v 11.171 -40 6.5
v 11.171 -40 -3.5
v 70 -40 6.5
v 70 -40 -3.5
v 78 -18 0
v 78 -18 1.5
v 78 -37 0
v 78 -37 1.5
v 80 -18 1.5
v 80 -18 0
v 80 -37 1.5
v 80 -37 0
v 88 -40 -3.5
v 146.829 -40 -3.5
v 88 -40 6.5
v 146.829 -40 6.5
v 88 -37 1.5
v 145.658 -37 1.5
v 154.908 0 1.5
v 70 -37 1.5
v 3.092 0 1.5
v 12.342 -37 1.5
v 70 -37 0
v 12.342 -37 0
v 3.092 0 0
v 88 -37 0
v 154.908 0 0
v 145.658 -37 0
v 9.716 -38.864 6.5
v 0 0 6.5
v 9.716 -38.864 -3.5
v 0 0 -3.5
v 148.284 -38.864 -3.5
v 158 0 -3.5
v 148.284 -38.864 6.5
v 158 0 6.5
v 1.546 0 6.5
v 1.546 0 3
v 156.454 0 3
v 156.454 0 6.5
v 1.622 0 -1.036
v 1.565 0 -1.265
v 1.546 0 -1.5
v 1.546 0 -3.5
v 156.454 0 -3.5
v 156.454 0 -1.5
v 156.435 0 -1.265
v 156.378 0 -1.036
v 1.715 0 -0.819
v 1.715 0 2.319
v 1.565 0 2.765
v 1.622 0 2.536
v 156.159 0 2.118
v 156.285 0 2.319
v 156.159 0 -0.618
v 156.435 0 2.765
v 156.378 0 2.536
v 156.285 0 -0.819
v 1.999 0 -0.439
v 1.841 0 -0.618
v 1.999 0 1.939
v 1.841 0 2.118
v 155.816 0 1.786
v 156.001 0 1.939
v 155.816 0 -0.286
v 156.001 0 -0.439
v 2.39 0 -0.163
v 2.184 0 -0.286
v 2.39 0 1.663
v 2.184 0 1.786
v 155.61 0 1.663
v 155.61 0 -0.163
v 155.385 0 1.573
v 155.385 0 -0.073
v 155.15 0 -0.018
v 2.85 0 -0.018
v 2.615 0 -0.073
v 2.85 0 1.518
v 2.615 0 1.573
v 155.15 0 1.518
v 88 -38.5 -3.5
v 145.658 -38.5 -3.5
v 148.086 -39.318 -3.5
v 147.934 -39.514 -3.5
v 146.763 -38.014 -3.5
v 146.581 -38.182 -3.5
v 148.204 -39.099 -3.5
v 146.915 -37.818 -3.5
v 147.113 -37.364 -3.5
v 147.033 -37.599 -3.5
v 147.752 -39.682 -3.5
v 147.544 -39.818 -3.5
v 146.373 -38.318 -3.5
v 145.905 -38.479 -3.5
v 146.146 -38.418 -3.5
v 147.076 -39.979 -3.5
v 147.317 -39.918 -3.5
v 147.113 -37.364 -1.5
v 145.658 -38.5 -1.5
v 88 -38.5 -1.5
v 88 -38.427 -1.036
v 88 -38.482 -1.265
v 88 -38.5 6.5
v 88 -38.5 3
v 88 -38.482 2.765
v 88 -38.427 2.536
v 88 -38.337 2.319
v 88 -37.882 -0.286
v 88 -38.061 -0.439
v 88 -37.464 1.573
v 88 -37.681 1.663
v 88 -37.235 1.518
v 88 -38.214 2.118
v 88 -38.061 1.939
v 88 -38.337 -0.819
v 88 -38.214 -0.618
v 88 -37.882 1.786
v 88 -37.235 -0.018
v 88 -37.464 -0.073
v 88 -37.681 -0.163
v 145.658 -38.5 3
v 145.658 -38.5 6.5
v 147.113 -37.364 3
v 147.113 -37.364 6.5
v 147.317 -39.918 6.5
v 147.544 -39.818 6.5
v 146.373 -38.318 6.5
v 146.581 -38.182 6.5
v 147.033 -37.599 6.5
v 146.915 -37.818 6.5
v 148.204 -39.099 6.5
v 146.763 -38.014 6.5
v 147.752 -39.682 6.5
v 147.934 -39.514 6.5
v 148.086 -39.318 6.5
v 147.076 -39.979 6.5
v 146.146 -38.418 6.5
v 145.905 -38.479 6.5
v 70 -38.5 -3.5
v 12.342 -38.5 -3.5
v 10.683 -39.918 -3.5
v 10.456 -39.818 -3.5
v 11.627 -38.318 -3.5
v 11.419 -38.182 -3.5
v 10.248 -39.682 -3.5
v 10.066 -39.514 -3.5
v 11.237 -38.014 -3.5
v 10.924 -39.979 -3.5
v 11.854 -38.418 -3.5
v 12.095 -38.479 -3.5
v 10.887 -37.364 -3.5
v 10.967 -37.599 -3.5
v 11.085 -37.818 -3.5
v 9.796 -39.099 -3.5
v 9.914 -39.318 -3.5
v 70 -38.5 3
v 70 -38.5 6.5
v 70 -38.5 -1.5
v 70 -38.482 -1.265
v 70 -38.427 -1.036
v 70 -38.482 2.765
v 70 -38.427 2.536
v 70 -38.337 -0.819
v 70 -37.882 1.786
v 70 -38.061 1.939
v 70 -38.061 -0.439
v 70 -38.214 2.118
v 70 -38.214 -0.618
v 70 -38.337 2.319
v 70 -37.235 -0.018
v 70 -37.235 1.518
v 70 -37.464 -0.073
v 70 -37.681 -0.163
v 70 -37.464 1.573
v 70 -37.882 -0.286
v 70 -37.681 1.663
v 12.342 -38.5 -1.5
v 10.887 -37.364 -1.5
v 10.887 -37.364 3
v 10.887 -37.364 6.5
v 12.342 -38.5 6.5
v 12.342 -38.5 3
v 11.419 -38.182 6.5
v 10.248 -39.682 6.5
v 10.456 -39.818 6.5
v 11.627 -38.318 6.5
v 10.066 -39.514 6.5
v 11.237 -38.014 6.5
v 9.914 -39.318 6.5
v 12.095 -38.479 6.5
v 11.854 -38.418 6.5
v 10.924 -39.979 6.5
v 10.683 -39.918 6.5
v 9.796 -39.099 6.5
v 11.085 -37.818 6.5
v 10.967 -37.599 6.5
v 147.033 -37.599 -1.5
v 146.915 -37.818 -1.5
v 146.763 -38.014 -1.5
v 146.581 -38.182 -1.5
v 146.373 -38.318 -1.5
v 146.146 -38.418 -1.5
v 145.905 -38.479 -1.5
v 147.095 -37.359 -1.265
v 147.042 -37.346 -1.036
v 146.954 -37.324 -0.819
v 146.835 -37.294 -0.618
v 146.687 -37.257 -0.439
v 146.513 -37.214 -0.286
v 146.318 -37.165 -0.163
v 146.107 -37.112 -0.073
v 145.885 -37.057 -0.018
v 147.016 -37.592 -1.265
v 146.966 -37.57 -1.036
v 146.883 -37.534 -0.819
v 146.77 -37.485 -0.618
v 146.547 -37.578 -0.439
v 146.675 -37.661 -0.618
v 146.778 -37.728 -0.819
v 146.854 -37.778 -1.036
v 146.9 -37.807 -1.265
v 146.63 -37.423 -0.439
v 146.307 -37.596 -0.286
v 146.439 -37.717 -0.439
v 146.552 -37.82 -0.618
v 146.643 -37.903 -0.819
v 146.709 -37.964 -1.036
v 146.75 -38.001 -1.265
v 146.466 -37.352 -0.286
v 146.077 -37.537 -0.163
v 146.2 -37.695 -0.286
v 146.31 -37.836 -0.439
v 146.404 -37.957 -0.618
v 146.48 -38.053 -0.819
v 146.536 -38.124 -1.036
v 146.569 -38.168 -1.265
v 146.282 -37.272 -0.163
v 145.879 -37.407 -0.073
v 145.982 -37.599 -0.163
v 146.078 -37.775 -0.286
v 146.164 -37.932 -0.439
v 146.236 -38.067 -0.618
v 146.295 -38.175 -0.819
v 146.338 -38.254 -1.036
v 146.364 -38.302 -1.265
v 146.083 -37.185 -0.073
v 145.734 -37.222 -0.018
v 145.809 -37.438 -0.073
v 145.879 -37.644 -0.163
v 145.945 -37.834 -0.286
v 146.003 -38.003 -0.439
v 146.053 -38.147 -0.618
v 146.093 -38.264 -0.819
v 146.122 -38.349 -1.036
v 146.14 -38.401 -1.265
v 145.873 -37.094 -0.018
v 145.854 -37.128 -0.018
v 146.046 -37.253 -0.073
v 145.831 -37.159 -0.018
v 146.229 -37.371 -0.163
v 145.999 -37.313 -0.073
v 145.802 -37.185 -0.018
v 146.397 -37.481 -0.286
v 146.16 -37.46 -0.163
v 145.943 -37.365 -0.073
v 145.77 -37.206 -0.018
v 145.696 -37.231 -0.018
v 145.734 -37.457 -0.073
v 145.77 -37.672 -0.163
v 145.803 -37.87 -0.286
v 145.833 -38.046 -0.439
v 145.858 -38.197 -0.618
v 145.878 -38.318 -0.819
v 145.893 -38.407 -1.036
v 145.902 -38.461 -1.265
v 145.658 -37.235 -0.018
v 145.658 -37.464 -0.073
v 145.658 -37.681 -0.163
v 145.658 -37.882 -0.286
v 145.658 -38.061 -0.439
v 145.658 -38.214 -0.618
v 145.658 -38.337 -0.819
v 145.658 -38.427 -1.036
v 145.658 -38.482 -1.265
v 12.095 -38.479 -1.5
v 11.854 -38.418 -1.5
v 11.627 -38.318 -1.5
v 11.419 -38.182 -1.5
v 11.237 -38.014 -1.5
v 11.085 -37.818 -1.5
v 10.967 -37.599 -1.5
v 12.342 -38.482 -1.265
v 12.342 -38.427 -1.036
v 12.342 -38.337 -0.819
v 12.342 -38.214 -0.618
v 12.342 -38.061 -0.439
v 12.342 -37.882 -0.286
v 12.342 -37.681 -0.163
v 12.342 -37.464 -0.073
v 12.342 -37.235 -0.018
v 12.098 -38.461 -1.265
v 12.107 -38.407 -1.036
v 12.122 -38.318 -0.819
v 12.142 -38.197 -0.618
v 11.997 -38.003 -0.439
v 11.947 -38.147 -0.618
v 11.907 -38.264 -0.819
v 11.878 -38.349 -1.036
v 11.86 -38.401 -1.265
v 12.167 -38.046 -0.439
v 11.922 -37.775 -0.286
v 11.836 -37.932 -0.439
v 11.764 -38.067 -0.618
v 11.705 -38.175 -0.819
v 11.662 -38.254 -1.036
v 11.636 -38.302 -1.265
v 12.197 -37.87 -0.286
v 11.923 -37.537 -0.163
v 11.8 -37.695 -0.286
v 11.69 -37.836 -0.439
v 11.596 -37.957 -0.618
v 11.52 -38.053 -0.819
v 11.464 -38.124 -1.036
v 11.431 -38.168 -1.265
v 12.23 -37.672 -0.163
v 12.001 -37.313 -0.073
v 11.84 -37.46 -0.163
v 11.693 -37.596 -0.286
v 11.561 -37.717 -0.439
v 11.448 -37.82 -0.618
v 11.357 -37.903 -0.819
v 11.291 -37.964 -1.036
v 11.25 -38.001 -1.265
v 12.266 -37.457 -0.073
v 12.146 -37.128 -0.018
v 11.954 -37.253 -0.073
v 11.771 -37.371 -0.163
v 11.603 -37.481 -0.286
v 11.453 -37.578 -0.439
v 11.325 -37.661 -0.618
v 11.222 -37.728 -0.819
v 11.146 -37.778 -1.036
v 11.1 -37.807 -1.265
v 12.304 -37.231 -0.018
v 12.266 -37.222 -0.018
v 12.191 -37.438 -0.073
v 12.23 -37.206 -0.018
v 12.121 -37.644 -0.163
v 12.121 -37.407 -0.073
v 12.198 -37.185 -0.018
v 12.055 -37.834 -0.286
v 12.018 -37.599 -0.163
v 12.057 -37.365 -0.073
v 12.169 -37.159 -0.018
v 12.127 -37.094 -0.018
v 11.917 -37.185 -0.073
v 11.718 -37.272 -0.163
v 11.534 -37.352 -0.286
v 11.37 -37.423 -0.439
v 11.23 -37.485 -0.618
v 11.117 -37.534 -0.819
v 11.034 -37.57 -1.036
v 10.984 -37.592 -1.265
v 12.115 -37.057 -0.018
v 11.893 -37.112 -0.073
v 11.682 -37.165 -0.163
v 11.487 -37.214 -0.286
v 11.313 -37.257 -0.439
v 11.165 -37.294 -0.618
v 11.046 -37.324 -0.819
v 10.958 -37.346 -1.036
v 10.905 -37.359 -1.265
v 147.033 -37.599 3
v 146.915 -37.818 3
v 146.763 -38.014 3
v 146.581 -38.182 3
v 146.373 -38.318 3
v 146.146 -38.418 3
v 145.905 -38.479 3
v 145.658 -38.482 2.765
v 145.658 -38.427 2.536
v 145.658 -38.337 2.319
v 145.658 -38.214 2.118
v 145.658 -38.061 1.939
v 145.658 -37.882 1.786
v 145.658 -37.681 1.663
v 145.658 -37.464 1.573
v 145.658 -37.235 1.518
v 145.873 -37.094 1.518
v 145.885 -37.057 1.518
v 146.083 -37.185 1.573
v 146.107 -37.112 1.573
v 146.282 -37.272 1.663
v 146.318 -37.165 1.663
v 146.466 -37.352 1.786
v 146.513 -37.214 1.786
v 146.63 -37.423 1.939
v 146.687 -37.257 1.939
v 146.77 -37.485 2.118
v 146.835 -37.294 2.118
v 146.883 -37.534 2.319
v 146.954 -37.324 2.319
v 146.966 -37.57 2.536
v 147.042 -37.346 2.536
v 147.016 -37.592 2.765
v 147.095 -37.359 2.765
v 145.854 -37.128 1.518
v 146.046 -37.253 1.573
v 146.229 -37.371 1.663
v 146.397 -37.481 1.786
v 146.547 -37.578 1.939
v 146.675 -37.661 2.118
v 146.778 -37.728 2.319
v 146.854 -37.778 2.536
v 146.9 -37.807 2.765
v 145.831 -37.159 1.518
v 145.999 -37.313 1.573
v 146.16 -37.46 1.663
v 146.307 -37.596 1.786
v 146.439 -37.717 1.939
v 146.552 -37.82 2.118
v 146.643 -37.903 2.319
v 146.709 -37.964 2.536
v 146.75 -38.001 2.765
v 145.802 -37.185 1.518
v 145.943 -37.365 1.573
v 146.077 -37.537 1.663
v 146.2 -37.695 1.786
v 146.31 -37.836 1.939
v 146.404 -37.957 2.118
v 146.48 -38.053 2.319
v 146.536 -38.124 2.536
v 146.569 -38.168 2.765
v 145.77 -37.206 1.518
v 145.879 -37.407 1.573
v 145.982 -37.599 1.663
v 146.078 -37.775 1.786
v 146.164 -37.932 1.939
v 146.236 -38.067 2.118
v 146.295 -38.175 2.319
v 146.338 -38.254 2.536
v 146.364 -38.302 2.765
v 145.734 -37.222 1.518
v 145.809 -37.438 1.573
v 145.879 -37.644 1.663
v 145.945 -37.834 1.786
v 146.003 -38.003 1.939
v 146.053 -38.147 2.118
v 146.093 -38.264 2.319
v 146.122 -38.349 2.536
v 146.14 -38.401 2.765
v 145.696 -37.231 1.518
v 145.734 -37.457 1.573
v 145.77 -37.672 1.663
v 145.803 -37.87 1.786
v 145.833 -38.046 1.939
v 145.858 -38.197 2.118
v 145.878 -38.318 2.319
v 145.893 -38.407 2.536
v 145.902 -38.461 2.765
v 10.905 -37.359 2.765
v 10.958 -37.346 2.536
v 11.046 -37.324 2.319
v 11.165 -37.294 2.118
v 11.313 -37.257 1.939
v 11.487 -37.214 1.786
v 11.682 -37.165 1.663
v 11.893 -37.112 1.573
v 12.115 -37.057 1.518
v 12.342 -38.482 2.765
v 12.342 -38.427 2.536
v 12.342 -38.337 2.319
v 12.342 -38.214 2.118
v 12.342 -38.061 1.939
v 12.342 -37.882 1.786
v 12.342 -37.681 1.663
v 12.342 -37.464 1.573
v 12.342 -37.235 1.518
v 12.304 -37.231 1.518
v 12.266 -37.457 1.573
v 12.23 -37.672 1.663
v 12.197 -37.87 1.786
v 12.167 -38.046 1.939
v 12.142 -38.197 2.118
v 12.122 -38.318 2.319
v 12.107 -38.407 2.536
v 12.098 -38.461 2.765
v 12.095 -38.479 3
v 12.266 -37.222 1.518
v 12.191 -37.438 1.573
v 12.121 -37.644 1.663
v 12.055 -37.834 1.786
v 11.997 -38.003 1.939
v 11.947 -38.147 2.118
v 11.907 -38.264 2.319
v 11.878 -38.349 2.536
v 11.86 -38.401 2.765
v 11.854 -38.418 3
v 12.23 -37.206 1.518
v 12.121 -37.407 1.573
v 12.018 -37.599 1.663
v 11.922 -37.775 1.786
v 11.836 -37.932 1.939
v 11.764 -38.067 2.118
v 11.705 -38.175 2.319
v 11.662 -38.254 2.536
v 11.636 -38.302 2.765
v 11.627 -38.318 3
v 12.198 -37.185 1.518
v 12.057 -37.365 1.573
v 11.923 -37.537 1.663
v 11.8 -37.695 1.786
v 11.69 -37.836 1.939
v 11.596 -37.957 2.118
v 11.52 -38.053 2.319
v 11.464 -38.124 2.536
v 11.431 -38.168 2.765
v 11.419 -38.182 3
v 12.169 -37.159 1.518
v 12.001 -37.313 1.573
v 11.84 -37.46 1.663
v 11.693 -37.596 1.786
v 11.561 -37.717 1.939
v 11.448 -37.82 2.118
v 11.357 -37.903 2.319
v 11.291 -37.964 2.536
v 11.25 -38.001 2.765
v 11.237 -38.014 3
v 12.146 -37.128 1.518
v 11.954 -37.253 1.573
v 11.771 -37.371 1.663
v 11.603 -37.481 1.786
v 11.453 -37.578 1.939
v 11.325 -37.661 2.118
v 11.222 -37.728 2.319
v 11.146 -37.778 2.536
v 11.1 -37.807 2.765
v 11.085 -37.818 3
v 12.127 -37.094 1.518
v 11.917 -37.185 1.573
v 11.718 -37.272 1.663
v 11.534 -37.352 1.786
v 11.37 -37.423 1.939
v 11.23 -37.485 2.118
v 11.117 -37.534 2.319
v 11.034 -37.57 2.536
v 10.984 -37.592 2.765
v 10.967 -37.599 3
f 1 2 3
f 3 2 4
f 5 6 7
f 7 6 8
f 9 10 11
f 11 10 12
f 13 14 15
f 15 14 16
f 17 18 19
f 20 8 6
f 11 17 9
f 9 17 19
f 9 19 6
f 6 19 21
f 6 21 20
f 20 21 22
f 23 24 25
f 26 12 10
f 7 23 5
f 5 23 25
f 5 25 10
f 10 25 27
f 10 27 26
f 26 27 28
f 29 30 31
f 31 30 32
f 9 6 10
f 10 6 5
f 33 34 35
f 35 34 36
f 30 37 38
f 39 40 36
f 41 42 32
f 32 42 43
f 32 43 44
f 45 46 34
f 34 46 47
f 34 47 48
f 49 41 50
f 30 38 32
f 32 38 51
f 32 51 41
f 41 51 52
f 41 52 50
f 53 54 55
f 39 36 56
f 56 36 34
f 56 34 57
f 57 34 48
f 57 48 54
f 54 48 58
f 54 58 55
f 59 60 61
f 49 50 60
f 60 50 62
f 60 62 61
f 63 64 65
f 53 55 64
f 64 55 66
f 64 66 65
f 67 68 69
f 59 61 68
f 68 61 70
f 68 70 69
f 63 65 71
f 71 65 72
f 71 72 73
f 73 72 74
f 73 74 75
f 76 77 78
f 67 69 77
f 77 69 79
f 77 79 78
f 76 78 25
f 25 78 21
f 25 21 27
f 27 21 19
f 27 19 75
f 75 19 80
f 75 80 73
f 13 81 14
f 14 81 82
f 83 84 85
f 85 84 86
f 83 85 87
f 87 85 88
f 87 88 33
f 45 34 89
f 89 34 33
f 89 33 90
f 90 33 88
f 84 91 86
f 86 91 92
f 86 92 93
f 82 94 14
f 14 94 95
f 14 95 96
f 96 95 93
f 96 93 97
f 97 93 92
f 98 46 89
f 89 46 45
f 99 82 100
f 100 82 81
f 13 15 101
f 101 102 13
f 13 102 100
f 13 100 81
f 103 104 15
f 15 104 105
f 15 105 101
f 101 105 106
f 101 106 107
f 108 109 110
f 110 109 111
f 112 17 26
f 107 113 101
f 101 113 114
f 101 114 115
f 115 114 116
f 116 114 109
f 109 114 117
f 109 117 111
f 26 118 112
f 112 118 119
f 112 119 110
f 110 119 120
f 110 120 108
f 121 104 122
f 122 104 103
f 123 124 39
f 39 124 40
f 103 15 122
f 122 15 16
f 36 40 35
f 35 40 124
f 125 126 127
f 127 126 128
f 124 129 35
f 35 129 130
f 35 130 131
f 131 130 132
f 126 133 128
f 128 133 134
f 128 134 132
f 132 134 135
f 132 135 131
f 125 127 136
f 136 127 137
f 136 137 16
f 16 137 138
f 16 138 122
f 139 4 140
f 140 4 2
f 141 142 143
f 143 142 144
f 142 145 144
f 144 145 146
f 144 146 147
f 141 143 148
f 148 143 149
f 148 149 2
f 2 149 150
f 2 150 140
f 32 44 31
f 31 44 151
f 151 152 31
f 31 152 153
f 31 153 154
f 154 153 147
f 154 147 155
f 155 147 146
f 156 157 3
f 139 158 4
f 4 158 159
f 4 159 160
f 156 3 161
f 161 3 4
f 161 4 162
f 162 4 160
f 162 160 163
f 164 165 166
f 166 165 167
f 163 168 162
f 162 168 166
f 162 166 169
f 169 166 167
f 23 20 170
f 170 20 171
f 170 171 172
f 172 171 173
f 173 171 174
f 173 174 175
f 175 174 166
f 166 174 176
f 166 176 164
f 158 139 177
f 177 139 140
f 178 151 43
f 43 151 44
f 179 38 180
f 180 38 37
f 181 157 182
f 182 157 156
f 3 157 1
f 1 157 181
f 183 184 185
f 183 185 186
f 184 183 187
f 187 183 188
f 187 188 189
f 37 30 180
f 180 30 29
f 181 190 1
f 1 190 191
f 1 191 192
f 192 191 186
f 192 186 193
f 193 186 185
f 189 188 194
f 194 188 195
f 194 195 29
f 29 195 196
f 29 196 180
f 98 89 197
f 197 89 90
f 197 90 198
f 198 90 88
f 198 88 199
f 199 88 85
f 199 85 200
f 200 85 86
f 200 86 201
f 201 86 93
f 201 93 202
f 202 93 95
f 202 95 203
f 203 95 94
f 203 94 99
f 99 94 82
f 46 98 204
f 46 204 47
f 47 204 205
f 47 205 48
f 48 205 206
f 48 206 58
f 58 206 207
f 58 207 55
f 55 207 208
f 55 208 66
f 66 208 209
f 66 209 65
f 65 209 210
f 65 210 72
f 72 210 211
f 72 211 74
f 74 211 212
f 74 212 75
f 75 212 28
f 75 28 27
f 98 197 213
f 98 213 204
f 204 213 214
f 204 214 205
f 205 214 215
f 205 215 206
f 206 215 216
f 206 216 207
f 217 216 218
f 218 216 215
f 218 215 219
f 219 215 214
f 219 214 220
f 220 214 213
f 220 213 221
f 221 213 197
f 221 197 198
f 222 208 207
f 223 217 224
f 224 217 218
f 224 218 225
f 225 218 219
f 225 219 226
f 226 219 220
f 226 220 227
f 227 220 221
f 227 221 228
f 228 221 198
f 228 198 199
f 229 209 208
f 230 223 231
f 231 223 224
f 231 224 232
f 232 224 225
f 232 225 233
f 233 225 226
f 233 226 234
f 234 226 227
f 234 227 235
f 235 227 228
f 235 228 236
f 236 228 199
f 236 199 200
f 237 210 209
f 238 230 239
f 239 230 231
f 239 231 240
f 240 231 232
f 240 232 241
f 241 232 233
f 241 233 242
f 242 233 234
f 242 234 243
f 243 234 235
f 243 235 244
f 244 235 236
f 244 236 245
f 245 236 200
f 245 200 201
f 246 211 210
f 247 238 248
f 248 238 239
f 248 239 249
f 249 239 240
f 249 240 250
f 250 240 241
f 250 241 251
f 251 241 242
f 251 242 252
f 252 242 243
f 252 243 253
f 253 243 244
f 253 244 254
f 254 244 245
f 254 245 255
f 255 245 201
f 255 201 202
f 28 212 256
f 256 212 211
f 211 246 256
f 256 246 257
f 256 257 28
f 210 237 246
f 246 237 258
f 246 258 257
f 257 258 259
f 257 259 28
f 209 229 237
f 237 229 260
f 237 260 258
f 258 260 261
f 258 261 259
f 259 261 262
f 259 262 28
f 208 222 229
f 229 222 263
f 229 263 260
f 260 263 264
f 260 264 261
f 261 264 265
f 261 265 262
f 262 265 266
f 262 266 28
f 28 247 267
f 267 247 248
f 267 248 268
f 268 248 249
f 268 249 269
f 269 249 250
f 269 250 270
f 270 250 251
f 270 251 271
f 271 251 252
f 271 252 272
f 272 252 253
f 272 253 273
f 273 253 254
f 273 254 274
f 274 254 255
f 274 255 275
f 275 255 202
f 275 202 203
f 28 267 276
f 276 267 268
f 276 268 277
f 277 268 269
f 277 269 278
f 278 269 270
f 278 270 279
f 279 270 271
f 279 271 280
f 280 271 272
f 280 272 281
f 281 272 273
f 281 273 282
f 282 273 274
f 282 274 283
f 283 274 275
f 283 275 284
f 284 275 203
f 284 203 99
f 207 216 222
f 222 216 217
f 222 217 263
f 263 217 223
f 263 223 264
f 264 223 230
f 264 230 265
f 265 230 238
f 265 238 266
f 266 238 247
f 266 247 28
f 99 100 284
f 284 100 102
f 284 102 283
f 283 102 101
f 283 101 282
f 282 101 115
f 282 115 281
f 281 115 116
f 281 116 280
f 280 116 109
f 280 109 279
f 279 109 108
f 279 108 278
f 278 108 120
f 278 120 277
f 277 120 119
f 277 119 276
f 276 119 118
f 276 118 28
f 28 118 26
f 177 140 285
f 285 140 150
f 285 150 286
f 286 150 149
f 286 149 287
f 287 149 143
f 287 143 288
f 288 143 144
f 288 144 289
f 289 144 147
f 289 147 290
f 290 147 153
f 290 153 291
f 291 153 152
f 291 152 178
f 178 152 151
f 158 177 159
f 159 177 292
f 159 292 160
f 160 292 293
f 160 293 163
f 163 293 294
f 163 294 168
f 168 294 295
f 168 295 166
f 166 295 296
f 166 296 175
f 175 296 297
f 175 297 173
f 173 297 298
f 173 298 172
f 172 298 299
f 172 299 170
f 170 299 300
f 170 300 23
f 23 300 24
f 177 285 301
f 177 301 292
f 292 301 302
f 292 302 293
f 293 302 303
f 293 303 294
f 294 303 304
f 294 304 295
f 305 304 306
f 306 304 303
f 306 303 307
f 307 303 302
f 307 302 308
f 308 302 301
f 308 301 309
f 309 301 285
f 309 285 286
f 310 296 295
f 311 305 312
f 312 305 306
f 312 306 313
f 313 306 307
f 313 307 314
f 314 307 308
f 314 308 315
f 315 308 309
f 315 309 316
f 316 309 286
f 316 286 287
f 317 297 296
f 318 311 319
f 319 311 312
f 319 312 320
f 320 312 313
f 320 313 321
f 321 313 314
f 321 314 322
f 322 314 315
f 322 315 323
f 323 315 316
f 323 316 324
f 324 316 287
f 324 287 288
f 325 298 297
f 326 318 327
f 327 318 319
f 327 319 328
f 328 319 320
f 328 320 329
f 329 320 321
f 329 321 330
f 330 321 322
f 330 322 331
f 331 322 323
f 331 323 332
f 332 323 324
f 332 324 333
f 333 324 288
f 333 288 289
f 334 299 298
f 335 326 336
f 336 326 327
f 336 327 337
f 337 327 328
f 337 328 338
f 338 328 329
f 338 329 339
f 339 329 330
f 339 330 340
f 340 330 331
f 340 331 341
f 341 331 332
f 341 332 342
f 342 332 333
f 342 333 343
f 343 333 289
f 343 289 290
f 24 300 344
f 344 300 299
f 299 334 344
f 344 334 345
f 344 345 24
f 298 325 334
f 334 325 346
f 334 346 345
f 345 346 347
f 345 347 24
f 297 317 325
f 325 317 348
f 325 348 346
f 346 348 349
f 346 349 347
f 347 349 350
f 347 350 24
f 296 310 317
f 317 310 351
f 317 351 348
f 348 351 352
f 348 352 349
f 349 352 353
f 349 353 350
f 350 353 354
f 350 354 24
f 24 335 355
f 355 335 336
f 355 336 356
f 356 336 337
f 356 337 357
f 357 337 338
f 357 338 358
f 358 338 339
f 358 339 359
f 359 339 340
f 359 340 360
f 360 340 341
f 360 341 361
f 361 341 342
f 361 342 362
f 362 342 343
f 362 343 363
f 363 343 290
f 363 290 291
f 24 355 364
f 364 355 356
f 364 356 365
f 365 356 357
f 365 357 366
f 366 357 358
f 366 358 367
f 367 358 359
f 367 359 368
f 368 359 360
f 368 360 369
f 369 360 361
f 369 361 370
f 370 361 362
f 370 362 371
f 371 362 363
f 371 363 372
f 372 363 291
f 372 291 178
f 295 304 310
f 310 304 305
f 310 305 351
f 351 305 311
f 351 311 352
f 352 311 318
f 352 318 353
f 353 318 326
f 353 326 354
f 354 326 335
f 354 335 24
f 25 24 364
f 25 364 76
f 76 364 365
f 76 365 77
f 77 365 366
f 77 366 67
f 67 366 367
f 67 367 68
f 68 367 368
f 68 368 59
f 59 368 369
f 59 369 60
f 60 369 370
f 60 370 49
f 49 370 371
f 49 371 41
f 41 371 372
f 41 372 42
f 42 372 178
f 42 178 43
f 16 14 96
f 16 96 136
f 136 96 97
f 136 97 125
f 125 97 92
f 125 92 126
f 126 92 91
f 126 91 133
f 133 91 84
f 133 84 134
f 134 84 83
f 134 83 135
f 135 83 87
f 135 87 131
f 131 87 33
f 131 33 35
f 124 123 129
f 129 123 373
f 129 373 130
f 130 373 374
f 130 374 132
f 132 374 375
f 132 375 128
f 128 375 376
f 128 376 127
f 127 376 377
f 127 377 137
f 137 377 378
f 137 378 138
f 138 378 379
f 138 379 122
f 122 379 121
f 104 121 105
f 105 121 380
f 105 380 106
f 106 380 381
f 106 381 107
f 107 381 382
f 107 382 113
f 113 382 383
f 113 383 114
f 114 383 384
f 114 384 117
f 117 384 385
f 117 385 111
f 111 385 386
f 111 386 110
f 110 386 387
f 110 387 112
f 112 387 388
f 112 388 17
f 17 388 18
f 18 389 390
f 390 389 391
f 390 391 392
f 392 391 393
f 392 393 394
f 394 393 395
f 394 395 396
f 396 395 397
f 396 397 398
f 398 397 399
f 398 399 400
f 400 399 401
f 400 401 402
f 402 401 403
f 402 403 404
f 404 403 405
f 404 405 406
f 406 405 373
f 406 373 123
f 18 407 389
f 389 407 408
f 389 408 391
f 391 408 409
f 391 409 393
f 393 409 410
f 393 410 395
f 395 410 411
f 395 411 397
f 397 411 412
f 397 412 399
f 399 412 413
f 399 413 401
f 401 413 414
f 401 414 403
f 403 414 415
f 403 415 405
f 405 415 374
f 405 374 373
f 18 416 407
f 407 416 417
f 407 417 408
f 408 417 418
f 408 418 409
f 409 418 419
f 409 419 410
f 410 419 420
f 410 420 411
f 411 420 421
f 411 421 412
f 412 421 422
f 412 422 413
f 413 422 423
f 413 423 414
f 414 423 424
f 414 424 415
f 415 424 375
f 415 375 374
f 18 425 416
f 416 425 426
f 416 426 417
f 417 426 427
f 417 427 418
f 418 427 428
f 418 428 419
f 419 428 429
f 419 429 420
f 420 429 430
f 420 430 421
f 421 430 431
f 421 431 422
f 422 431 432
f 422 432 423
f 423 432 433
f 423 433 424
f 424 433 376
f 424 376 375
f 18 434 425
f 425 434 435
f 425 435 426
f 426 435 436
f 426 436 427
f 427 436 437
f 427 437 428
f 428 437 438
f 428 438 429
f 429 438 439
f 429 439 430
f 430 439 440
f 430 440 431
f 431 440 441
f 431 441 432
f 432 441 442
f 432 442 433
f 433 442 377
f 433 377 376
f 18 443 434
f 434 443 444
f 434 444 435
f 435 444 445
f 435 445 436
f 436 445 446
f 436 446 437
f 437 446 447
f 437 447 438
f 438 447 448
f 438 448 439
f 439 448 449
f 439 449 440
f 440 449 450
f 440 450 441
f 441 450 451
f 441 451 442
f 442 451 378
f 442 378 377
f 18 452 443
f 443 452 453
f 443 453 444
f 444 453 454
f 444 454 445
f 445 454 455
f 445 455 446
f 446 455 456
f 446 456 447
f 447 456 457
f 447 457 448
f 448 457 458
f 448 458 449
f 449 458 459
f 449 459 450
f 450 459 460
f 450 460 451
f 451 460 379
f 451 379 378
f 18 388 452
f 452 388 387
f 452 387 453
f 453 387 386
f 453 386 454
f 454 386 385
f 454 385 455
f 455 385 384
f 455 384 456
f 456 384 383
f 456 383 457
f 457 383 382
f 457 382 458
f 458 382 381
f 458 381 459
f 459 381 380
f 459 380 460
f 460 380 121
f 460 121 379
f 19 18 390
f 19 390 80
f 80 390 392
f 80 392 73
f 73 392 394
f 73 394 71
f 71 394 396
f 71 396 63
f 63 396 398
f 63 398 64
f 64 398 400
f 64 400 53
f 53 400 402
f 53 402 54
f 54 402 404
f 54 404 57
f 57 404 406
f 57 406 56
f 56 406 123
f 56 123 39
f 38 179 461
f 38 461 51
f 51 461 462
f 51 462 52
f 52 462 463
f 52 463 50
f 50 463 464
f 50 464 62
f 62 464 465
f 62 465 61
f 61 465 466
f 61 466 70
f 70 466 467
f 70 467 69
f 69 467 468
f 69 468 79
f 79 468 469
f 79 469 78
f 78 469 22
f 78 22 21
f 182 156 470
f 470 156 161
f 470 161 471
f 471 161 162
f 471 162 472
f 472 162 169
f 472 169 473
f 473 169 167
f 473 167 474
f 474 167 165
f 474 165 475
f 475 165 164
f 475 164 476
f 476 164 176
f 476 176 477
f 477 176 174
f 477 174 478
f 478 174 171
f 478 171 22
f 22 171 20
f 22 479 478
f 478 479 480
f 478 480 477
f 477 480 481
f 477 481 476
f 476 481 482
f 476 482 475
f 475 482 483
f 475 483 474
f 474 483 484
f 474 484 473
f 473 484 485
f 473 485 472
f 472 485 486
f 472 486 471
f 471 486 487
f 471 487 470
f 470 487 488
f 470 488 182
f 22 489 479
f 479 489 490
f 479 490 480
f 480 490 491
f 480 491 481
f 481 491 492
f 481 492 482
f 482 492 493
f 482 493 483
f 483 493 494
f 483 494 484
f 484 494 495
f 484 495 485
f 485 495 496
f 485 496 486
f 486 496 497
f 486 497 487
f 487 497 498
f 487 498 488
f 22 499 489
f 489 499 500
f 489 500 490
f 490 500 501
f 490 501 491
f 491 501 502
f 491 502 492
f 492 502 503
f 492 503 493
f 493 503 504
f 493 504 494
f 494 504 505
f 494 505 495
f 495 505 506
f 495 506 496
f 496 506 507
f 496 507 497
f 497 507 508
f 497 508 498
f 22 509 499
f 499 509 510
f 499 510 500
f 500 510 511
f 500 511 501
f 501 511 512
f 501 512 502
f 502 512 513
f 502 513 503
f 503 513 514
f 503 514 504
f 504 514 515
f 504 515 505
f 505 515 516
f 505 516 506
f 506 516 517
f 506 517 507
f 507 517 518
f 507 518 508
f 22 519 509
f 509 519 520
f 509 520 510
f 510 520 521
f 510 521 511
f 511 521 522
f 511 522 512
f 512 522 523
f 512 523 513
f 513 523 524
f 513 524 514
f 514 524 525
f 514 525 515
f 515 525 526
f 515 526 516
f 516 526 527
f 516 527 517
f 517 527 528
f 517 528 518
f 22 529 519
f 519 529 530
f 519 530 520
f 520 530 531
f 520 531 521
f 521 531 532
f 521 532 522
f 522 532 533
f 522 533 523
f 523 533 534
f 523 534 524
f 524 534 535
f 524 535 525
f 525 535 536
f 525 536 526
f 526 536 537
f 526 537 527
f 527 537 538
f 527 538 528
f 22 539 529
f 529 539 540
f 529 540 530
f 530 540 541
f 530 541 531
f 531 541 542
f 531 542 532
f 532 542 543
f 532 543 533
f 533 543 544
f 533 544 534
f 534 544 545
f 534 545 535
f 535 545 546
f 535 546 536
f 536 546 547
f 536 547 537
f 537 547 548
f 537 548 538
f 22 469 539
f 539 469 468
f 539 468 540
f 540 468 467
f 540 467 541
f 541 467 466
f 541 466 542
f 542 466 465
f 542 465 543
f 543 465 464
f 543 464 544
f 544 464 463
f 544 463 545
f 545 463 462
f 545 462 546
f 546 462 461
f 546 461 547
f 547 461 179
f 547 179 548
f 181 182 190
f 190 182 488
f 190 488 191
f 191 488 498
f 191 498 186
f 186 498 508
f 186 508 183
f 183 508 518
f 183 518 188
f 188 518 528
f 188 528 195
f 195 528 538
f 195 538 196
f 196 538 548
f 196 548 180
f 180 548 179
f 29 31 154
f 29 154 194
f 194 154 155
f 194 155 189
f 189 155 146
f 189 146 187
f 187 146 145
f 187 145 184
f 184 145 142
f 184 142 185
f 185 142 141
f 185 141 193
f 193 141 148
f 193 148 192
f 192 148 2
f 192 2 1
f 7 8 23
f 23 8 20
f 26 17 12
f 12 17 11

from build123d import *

# Parameters (mm, degrees)
BOSS_EXTRUDE2_DEPTH            = 1.5
BOSS_EXTRUDE3_DEPTH            = 5
BOSS_EXTRUDE3_DEPTH_BACK       = 5
FILLET1_R                      = 1.5
CUT_EXTRUDE1_REACH             = 7
SKETCH6_W                      = 8
SKETCH6_H                      = 3
CUT_EXTRUDE1_DIRECTION_2_DEPTH = 6


with BuildPart() as part:
    # Sketch1 → Boss-Extrude2 (new body)
    with BuildSketch(Plane.XY):
        Polygon((0, 0), (158, 0), (148, -40), (80, -40), (80, -18), (78, -18), (78, -40), (10, -40), align=None)
    extrude(amount=BOSS_EXTRUDE2_DEPTH)

    # Sketch5 → Boss-Extrude3 (add, two sides)
    with BuildSketch(Plane.XY.offset(1.5)) as boss_extrude3_sk:
        Polygon((156.45383539, 0), (158, 0), (148, -40), (88, -40), (88, -38.5), (146.82883539, -38.5), align=None)
        Polygon((70, -38.5), (70, -40), (10, -40), (0, 0), (1.54616461, 0), (11.17116461, -38.5), align=None)
    extrude(amount=BOSS_EXTRUDE3_DEPTH)
    extrude(boss_extrude3_sk.sketch, amount=-BOSS_EXTRUDE3_DEPTH_BACK)

    # Fillet1
    fillet1_edges = [part.edges().sort_by_distance(p)[0] for p in [
        (148, -40, 1.5),
        (10, -40, 1.5),
        (151.64133539, -19.25, 0),
        (117.414417695, -38.5, 0),
        (146.82883539, -38.5, -1.75),
        (117.414417695, -38.5, 1.5),
        (151.64133539, -19.25, 1.5),
        (146.82883539, -38.5, 4),
        (40.585582305, -38.5, 0),
        (6.35866461, -19.25, 0),
        (11.17116461, -38.5, -1.75),
        (6.35866461, -19.25, 1.5),
        (40.585582305, -38.5, 1.5),
        (11.17116461, -38.5, 4),
    ]]
    fillet(fillet1_edges, radius=FILLET1_R)

    # Sketch6 → Cut-Extrude1 (cut, up to next)
    with BuildSketch(Plane.XY.offset(1.5), mode=Mode.PRIVATE) as cut_extrude1_sk1:
        with Locations((74, -38.5)):
            Rectangle(SKETCH6_W, SKETCH6_H)
    cut_extrude1_tool1 = extrude(cut_extrude1_sk1.sketch, amount=-CUT_EXTRUDE1_REACH, mode=Mode.PRIVATE) & part.part
    add(cut_extrude1_tool1.solids().sort_by_distance((74, -38.5, 1.5))[0], mode=Mode.SUBTRACT)
    # Sketch6 → Cut-Extrude1 (cut, up to next)
    with BuildSketch(Plane.XY.offset(1.5), mode=Mode.PRIVATE) as cut_extrude1_sk2:
        with Locations((84, -38.5)):
            Rectangle(SKETCH6_W, SKETCH6_H)
    cut_extrude1_tool2 = extrude(cut_extrude1_sk2.sketch, amount=-CUT_EXTRUDE1_REACH, mode=Mode.PRIVATE) & part.part
    add(cut_extrude1_tool2.solids().sort_by_distance((84, -38.5, 1.5))[0], mode=Mode.SUBTRACT)

    # Sketch6 → Cut-Extrude1 direction 2 (cut)
    with BuildSketch(Plane.XY.offset(1.5)):
        with Locations((74, -38.5)):
            Rectangle(SKETCH6_W, SKETCH6_H)
        with Locations((84, -38.5)):
            Rectangle(SKETCH6_W, SKETCH6_H)
    extrude(amount=CUT_EXTRUDE1_DIRECTION_2_DEPTH, mode=Mode.SUBTRACT)


solid = part.part
